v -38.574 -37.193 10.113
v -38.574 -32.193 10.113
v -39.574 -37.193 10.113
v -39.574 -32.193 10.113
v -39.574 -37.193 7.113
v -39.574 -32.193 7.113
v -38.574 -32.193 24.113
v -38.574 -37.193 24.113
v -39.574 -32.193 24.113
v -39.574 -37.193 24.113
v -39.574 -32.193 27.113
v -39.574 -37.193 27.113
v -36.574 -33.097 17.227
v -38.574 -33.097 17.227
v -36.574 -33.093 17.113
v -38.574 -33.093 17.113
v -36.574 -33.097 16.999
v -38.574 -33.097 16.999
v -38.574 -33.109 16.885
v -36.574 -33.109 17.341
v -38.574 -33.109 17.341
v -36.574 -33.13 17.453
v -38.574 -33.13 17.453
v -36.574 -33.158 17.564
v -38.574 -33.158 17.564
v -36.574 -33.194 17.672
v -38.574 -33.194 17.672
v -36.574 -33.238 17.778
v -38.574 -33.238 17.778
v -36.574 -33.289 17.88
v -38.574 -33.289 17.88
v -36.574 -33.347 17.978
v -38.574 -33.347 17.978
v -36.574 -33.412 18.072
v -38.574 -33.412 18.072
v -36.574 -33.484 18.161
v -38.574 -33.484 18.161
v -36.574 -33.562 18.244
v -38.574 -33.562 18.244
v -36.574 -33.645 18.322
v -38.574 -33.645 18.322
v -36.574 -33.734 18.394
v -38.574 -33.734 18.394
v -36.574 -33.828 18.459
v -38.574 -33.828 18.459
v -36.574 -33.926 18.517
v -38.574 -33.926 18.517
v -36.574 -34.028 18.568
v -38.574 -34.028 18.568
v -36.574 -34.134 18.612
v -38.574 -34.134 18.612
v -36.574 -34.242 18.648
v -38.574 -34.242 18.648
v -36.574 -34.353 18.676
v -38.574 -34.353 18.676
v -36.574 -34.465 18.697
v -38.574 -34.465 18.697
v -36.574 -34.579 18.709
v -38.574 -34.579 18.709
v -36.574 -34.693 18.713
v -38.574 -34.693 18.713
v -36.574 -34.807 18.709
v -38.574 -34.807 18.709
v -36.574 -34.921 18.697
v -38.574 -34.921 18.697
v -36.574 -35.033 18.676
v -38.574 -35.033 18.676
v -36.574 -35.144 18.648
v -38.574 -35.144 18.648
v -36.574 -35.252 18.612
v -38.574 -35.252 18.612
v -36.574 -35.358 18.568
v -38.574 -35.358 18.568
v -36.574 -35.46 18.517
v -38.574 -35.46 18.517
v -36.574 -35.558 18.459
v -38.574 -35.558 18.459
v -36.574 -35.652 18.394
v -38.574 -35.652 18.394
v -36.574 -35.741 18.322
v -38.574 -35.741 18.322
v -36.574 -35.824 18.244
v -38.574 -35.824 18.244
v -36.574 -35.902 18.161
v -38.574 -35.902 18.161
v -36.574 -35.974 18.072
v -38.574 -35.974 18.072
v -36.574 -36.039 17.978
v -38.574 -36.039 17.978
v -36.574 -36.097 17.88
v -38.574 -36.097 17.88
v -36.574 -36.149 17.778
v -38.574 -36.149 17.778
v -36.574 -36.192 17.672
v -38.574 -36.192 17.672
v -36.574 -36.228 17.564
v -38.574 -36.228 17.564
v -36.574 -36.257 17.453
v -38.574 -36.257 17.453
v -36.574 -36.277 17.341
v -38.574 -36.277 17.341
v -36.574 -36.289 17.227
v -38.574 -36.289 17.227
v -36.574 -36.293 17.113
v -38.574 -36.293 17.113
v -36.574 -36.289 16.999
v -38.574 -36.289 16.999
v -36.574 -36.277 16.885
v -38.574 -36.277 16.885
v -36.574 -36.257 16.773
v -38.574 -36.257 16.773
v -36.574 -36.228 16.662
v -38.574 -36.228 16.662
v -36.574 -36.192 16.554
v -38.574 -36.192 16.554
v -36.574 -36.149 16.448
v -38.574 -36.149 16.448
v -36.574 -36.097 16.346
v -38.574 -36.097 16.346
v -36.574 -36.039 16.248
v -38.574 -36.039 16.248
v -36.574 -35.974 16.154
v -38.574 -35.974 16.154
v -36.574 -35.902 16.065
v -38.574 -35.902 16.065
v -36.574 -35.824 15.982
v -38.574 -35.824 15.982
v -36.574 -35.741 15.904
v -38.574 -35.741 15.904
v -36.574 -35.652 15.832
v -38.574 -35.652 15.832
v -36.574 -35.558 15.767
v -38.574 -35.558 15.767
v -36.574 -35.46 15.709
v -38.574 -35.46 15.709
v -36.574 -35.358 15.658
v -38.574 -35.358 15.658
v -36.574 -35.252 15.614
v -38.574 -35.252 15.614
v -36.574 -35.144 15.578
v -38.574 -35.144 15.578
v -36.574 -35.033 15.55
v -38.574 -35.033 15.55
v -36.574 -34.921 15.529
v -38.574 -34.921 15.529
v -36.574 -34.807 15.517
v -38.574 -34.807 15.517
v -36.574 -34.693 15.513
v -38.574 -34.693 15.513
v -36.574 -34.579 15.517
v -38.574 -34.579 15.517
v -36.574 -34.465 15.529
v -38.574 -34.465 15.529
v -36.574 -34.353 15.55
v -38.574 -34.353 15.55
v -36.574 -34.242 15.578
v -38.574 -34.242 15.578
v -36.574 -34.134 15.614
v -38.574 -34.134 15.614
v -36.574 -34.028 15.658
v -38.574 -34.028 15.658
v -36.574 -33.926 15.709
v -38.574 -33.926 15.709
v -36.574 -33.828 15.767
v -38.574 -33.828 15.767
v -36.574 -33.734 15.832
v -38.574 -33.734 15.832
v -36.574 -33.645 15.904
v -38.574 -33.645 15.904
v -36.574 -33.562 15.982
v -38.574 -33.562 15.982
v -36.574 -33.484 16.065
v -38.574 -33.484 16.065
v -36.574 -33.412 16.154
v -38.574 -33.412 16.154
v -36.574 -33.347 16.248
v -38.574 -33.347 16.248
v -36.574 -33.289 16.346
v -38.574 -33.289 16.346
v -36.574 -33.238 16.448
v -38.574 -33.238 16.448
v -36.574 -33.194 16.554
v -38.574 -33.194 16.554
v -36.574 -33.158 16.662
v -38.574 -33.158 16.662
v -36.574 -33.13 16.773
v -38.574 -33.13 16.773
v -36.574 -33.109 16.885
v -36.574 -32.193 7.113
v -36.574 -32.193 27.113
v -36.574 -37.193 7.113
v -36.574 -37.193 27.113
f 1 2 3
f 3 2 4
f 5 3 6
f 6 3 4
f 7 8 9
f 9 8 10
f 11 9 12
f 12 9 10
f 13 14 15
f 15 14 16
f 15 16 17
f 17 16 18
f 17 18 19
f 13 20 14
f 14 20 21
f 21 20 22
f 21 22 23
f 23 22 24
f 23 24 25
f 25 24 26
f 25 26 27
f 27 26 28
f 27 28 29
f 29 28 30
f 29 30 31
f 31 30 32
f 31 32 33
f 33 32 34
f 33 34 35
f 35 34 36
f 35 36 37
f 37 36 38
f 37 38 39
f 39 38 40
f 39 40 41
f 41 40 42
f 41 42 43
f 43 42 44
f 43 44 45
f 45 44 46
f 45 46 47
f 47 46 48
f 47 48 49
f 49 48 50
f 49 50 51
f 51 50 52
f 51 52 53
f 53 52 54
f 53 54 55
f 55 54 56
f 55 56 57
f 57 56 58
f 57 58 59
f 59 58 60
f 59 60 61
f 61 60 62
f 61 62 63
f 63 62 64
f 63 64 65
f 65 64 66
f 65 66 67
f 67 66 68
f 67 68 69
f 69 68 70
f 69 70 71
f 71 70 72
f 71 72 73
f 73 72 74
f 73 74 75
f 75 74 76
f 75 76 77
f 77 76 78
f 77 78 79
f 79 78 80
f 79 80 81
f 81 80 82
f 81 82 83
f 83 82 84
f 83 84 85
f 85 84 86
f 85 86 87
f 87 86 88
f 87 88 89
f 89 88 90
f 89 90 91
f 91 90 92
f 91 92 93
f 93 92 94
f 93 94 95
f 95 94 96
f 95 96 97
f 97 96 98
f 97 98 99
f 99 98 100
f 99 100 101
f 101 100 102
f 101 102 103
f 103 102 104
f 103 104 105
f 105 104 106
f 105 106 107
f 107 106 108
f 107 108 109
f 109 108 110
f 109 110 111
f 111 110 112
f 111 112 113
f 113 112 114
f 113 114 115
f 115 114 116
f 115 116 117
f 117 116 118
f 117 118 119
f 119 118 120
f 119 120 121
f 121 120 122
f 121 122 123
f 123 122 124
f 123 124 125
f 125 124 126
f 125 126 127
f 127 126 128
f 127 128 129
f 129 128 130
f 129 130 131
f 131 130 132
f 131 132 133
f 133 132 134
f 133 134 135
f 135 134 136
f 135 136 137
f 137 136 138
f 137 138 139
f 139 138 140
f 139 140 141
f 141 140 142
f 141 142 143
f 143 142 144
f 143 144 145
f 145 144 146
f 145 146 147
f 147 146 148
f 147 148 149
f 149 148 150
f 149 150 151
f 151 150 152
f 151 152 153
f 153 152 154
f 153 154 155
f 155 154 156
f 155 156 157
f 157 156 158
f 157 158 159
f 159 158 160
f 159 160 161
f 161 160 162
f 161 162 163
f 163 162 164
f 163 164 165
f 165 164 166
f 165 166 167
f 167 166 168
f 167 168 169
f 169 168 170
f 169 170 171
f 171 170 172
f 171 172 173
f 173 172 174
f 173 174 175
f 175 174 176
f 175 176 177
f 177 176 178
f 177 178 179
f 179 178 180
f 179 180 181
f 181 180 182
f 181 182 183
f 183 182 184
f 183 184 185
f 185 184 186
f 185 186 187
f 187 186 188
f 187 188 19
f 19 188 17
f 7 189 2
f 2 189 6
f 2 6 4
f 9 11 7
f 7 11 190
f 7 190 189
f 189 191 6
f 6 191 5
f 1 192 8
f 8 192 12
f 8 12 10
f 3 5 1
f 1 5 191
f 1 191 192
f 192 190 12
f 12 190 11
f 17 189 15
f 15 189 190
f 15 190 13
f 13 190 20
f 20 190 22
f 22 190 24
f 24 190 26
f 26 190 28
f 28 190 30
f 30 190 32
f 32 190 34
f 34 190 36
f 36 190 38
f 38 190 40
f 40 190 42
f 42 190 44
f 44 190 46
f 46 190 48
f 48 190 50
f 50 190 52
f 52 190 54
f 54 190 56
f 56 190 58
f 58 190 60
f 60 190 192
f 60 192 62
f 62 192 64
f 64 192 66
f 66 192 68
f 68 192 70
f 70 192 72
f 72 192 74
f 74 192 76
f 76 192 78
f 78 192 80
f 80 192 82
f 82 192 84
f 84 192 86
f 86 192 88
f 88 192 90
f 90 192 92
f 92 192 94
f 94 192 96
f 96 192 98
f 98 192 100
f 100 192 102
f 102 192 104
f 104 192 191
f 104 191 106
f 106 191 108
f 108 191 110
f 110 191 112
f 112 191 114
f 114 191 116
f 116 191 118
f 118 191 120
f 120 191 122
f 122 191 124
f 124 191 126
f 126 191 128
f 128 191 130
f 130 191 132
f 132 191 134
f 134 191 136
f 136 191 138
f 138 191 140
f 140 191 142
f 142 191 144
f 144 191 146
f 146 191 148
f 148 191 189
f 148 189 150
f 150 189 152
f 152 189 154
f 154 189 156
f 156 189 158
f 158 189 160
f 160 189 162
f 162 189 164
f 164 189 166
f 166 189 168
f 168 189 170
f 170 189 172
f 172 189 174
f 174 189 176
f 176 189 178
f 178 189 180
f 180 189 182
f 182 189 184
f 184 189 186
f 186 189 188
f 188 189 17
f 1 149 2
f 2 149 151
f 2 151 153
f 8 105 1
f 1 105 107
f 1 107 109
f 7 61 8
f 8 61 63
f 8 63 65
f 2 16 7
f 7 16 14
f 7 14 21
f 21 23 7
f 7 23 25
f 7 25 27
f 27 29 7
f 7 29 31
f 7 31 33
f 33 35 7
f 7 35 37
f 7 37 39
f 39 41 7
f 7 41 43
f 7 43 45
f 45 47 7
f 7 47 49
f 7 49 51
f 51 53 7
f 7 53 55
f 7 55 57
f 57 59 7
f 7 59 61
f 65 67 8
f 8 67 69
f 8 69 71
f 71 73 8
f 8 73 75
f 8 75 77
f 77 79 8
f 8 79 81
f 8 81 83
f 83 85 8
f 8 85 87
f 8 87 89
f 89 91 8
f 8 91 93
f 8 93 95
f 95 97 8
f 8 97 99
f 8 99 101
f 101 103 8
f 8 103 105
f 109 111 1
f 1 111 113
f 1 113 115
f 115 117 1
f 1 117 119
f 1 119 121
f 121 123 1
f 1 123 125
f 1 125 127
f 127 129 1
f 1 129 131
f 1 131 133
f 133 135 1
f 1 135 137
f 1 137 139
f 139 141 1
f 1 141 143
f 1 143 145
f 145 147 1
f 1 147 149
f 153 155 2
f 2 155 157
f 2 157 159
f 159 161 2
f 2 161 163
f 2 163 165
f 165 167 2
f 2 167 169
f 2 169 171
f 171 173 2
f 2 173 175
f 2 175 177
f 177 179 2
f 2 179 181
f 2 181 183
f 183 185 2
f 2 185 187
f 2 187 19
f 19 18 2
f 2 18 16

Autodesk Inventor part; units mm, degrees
ref_plane "YZ Plane" through (0, 0, 0) normal (1, 0, 0) x (0, 1, 0)
ref_plane "XZ Plane" through (0, 0, 0) normal (0, 1, 0) x (-1, 0, 0)
ref_plane "XY Plane" through (0, 0, 0) normal (0, 0, 1) x (1, 0, 0)
ref_plane "Arbeitsebene1" through (-38.5744, -30.9423, 15.3122) normal (1, 0, 0) x (0, 1, 0)
sketch "Skizze1" plane through (-38.5744, -30.9423, 15.3122) normal (1, 0, 0) x (0, 1, 0)
  circle A0 centre (-3.7508, 1.8008) radius 1.4 projected
  line L0 (-1.2508, 11.8008) -> (-6.2508, 11.8008)
  line L1 (-6.2508, 11.8008) -> (-6.2508, -8.1992)
  line L2 (-6.2508, -8.1992) -> (-1.2508, -8.1992)
  line L3 (-1.2508, -8.1992) -> (-1.2508, 11.8008)
  line L4 (-1.2508, 11.8008) -> (-6.2508, -8.1992) construction
  line L5 (-6.2508, 11.8008) -> (-1.2508, -8.1992) construction
  circle A1 centre (-3.7508, 1.8008) radius 1.6
  point P0 (30.9423, -15.3122)
  dimension "d0" = 5
  dimension "d1" = 20
  dimension "d4" = 0.2
extrude "Extrusion1" add sketch "Skizze1" along normal blind 2 contours L3 L2 L1 L0
sketch "Skizze2" plane through (-38.5744, -30.9423, 15.3122) normal (-1, 0, 0) x (0, 0, 1)
  circle A0 centre (1.8008, -3.7508) radius 1.6 projected
  line L0 (11.8008, -1.2508) -> (11.8008, -6.2508) projected
  line L1 (11.8008, -6.2508) -> (-8.1992, -6.2508) projected
  line L2 (-8.1992, -6.2508) -> (-8.1992, -1.2508) projected
  line L3 (-8.1992, -1.2508) -> (11.8008, -1.2508) projected
  line L4 (-8.1992, -6.2508) -> (-8.1992, -1.2508) projected
  line L5 (11.8008, -6.2508) -> (-8.1992, -6.2508) projected
  line L6 (-8.1992, -1.2508) -> (-5.1992, -1.2508)
  line L7 (-5.1992, -1.2508) -> (-5.1992, -6.2508)
  line L8 (-5.1992, -6.2508) -> (-8.1992, -6.2508)
  line L9 (-8.1992, -6.2508) -> (-8.1992, -1.2508)
  line L10 (-8.1992, -1.2508) -> (11.8008, -1.2508) projected
  line L11 (11.8008, -1.2508) -> (8.8008, -1.2508)
  line L12 (8.8008, -1.2508) -> (8.8008, -6.2508)
  line L13 (8.8008, -6.2508) -> (11.8008, -6.2508)
  line L14 (11.8008, -6.2508) -> (11.8008, -1.2508)
  point P0 (-15.3122, 30.9423)
  dimension "d5" = 3
  dimension "d6" = 3
extrude "Extrusion2" add sketch "Skizze2" along normal blind 1 contours L0 L1 L12 L3 | L7 L1 L2 L3
properties part number "03_Camera_Clip"
